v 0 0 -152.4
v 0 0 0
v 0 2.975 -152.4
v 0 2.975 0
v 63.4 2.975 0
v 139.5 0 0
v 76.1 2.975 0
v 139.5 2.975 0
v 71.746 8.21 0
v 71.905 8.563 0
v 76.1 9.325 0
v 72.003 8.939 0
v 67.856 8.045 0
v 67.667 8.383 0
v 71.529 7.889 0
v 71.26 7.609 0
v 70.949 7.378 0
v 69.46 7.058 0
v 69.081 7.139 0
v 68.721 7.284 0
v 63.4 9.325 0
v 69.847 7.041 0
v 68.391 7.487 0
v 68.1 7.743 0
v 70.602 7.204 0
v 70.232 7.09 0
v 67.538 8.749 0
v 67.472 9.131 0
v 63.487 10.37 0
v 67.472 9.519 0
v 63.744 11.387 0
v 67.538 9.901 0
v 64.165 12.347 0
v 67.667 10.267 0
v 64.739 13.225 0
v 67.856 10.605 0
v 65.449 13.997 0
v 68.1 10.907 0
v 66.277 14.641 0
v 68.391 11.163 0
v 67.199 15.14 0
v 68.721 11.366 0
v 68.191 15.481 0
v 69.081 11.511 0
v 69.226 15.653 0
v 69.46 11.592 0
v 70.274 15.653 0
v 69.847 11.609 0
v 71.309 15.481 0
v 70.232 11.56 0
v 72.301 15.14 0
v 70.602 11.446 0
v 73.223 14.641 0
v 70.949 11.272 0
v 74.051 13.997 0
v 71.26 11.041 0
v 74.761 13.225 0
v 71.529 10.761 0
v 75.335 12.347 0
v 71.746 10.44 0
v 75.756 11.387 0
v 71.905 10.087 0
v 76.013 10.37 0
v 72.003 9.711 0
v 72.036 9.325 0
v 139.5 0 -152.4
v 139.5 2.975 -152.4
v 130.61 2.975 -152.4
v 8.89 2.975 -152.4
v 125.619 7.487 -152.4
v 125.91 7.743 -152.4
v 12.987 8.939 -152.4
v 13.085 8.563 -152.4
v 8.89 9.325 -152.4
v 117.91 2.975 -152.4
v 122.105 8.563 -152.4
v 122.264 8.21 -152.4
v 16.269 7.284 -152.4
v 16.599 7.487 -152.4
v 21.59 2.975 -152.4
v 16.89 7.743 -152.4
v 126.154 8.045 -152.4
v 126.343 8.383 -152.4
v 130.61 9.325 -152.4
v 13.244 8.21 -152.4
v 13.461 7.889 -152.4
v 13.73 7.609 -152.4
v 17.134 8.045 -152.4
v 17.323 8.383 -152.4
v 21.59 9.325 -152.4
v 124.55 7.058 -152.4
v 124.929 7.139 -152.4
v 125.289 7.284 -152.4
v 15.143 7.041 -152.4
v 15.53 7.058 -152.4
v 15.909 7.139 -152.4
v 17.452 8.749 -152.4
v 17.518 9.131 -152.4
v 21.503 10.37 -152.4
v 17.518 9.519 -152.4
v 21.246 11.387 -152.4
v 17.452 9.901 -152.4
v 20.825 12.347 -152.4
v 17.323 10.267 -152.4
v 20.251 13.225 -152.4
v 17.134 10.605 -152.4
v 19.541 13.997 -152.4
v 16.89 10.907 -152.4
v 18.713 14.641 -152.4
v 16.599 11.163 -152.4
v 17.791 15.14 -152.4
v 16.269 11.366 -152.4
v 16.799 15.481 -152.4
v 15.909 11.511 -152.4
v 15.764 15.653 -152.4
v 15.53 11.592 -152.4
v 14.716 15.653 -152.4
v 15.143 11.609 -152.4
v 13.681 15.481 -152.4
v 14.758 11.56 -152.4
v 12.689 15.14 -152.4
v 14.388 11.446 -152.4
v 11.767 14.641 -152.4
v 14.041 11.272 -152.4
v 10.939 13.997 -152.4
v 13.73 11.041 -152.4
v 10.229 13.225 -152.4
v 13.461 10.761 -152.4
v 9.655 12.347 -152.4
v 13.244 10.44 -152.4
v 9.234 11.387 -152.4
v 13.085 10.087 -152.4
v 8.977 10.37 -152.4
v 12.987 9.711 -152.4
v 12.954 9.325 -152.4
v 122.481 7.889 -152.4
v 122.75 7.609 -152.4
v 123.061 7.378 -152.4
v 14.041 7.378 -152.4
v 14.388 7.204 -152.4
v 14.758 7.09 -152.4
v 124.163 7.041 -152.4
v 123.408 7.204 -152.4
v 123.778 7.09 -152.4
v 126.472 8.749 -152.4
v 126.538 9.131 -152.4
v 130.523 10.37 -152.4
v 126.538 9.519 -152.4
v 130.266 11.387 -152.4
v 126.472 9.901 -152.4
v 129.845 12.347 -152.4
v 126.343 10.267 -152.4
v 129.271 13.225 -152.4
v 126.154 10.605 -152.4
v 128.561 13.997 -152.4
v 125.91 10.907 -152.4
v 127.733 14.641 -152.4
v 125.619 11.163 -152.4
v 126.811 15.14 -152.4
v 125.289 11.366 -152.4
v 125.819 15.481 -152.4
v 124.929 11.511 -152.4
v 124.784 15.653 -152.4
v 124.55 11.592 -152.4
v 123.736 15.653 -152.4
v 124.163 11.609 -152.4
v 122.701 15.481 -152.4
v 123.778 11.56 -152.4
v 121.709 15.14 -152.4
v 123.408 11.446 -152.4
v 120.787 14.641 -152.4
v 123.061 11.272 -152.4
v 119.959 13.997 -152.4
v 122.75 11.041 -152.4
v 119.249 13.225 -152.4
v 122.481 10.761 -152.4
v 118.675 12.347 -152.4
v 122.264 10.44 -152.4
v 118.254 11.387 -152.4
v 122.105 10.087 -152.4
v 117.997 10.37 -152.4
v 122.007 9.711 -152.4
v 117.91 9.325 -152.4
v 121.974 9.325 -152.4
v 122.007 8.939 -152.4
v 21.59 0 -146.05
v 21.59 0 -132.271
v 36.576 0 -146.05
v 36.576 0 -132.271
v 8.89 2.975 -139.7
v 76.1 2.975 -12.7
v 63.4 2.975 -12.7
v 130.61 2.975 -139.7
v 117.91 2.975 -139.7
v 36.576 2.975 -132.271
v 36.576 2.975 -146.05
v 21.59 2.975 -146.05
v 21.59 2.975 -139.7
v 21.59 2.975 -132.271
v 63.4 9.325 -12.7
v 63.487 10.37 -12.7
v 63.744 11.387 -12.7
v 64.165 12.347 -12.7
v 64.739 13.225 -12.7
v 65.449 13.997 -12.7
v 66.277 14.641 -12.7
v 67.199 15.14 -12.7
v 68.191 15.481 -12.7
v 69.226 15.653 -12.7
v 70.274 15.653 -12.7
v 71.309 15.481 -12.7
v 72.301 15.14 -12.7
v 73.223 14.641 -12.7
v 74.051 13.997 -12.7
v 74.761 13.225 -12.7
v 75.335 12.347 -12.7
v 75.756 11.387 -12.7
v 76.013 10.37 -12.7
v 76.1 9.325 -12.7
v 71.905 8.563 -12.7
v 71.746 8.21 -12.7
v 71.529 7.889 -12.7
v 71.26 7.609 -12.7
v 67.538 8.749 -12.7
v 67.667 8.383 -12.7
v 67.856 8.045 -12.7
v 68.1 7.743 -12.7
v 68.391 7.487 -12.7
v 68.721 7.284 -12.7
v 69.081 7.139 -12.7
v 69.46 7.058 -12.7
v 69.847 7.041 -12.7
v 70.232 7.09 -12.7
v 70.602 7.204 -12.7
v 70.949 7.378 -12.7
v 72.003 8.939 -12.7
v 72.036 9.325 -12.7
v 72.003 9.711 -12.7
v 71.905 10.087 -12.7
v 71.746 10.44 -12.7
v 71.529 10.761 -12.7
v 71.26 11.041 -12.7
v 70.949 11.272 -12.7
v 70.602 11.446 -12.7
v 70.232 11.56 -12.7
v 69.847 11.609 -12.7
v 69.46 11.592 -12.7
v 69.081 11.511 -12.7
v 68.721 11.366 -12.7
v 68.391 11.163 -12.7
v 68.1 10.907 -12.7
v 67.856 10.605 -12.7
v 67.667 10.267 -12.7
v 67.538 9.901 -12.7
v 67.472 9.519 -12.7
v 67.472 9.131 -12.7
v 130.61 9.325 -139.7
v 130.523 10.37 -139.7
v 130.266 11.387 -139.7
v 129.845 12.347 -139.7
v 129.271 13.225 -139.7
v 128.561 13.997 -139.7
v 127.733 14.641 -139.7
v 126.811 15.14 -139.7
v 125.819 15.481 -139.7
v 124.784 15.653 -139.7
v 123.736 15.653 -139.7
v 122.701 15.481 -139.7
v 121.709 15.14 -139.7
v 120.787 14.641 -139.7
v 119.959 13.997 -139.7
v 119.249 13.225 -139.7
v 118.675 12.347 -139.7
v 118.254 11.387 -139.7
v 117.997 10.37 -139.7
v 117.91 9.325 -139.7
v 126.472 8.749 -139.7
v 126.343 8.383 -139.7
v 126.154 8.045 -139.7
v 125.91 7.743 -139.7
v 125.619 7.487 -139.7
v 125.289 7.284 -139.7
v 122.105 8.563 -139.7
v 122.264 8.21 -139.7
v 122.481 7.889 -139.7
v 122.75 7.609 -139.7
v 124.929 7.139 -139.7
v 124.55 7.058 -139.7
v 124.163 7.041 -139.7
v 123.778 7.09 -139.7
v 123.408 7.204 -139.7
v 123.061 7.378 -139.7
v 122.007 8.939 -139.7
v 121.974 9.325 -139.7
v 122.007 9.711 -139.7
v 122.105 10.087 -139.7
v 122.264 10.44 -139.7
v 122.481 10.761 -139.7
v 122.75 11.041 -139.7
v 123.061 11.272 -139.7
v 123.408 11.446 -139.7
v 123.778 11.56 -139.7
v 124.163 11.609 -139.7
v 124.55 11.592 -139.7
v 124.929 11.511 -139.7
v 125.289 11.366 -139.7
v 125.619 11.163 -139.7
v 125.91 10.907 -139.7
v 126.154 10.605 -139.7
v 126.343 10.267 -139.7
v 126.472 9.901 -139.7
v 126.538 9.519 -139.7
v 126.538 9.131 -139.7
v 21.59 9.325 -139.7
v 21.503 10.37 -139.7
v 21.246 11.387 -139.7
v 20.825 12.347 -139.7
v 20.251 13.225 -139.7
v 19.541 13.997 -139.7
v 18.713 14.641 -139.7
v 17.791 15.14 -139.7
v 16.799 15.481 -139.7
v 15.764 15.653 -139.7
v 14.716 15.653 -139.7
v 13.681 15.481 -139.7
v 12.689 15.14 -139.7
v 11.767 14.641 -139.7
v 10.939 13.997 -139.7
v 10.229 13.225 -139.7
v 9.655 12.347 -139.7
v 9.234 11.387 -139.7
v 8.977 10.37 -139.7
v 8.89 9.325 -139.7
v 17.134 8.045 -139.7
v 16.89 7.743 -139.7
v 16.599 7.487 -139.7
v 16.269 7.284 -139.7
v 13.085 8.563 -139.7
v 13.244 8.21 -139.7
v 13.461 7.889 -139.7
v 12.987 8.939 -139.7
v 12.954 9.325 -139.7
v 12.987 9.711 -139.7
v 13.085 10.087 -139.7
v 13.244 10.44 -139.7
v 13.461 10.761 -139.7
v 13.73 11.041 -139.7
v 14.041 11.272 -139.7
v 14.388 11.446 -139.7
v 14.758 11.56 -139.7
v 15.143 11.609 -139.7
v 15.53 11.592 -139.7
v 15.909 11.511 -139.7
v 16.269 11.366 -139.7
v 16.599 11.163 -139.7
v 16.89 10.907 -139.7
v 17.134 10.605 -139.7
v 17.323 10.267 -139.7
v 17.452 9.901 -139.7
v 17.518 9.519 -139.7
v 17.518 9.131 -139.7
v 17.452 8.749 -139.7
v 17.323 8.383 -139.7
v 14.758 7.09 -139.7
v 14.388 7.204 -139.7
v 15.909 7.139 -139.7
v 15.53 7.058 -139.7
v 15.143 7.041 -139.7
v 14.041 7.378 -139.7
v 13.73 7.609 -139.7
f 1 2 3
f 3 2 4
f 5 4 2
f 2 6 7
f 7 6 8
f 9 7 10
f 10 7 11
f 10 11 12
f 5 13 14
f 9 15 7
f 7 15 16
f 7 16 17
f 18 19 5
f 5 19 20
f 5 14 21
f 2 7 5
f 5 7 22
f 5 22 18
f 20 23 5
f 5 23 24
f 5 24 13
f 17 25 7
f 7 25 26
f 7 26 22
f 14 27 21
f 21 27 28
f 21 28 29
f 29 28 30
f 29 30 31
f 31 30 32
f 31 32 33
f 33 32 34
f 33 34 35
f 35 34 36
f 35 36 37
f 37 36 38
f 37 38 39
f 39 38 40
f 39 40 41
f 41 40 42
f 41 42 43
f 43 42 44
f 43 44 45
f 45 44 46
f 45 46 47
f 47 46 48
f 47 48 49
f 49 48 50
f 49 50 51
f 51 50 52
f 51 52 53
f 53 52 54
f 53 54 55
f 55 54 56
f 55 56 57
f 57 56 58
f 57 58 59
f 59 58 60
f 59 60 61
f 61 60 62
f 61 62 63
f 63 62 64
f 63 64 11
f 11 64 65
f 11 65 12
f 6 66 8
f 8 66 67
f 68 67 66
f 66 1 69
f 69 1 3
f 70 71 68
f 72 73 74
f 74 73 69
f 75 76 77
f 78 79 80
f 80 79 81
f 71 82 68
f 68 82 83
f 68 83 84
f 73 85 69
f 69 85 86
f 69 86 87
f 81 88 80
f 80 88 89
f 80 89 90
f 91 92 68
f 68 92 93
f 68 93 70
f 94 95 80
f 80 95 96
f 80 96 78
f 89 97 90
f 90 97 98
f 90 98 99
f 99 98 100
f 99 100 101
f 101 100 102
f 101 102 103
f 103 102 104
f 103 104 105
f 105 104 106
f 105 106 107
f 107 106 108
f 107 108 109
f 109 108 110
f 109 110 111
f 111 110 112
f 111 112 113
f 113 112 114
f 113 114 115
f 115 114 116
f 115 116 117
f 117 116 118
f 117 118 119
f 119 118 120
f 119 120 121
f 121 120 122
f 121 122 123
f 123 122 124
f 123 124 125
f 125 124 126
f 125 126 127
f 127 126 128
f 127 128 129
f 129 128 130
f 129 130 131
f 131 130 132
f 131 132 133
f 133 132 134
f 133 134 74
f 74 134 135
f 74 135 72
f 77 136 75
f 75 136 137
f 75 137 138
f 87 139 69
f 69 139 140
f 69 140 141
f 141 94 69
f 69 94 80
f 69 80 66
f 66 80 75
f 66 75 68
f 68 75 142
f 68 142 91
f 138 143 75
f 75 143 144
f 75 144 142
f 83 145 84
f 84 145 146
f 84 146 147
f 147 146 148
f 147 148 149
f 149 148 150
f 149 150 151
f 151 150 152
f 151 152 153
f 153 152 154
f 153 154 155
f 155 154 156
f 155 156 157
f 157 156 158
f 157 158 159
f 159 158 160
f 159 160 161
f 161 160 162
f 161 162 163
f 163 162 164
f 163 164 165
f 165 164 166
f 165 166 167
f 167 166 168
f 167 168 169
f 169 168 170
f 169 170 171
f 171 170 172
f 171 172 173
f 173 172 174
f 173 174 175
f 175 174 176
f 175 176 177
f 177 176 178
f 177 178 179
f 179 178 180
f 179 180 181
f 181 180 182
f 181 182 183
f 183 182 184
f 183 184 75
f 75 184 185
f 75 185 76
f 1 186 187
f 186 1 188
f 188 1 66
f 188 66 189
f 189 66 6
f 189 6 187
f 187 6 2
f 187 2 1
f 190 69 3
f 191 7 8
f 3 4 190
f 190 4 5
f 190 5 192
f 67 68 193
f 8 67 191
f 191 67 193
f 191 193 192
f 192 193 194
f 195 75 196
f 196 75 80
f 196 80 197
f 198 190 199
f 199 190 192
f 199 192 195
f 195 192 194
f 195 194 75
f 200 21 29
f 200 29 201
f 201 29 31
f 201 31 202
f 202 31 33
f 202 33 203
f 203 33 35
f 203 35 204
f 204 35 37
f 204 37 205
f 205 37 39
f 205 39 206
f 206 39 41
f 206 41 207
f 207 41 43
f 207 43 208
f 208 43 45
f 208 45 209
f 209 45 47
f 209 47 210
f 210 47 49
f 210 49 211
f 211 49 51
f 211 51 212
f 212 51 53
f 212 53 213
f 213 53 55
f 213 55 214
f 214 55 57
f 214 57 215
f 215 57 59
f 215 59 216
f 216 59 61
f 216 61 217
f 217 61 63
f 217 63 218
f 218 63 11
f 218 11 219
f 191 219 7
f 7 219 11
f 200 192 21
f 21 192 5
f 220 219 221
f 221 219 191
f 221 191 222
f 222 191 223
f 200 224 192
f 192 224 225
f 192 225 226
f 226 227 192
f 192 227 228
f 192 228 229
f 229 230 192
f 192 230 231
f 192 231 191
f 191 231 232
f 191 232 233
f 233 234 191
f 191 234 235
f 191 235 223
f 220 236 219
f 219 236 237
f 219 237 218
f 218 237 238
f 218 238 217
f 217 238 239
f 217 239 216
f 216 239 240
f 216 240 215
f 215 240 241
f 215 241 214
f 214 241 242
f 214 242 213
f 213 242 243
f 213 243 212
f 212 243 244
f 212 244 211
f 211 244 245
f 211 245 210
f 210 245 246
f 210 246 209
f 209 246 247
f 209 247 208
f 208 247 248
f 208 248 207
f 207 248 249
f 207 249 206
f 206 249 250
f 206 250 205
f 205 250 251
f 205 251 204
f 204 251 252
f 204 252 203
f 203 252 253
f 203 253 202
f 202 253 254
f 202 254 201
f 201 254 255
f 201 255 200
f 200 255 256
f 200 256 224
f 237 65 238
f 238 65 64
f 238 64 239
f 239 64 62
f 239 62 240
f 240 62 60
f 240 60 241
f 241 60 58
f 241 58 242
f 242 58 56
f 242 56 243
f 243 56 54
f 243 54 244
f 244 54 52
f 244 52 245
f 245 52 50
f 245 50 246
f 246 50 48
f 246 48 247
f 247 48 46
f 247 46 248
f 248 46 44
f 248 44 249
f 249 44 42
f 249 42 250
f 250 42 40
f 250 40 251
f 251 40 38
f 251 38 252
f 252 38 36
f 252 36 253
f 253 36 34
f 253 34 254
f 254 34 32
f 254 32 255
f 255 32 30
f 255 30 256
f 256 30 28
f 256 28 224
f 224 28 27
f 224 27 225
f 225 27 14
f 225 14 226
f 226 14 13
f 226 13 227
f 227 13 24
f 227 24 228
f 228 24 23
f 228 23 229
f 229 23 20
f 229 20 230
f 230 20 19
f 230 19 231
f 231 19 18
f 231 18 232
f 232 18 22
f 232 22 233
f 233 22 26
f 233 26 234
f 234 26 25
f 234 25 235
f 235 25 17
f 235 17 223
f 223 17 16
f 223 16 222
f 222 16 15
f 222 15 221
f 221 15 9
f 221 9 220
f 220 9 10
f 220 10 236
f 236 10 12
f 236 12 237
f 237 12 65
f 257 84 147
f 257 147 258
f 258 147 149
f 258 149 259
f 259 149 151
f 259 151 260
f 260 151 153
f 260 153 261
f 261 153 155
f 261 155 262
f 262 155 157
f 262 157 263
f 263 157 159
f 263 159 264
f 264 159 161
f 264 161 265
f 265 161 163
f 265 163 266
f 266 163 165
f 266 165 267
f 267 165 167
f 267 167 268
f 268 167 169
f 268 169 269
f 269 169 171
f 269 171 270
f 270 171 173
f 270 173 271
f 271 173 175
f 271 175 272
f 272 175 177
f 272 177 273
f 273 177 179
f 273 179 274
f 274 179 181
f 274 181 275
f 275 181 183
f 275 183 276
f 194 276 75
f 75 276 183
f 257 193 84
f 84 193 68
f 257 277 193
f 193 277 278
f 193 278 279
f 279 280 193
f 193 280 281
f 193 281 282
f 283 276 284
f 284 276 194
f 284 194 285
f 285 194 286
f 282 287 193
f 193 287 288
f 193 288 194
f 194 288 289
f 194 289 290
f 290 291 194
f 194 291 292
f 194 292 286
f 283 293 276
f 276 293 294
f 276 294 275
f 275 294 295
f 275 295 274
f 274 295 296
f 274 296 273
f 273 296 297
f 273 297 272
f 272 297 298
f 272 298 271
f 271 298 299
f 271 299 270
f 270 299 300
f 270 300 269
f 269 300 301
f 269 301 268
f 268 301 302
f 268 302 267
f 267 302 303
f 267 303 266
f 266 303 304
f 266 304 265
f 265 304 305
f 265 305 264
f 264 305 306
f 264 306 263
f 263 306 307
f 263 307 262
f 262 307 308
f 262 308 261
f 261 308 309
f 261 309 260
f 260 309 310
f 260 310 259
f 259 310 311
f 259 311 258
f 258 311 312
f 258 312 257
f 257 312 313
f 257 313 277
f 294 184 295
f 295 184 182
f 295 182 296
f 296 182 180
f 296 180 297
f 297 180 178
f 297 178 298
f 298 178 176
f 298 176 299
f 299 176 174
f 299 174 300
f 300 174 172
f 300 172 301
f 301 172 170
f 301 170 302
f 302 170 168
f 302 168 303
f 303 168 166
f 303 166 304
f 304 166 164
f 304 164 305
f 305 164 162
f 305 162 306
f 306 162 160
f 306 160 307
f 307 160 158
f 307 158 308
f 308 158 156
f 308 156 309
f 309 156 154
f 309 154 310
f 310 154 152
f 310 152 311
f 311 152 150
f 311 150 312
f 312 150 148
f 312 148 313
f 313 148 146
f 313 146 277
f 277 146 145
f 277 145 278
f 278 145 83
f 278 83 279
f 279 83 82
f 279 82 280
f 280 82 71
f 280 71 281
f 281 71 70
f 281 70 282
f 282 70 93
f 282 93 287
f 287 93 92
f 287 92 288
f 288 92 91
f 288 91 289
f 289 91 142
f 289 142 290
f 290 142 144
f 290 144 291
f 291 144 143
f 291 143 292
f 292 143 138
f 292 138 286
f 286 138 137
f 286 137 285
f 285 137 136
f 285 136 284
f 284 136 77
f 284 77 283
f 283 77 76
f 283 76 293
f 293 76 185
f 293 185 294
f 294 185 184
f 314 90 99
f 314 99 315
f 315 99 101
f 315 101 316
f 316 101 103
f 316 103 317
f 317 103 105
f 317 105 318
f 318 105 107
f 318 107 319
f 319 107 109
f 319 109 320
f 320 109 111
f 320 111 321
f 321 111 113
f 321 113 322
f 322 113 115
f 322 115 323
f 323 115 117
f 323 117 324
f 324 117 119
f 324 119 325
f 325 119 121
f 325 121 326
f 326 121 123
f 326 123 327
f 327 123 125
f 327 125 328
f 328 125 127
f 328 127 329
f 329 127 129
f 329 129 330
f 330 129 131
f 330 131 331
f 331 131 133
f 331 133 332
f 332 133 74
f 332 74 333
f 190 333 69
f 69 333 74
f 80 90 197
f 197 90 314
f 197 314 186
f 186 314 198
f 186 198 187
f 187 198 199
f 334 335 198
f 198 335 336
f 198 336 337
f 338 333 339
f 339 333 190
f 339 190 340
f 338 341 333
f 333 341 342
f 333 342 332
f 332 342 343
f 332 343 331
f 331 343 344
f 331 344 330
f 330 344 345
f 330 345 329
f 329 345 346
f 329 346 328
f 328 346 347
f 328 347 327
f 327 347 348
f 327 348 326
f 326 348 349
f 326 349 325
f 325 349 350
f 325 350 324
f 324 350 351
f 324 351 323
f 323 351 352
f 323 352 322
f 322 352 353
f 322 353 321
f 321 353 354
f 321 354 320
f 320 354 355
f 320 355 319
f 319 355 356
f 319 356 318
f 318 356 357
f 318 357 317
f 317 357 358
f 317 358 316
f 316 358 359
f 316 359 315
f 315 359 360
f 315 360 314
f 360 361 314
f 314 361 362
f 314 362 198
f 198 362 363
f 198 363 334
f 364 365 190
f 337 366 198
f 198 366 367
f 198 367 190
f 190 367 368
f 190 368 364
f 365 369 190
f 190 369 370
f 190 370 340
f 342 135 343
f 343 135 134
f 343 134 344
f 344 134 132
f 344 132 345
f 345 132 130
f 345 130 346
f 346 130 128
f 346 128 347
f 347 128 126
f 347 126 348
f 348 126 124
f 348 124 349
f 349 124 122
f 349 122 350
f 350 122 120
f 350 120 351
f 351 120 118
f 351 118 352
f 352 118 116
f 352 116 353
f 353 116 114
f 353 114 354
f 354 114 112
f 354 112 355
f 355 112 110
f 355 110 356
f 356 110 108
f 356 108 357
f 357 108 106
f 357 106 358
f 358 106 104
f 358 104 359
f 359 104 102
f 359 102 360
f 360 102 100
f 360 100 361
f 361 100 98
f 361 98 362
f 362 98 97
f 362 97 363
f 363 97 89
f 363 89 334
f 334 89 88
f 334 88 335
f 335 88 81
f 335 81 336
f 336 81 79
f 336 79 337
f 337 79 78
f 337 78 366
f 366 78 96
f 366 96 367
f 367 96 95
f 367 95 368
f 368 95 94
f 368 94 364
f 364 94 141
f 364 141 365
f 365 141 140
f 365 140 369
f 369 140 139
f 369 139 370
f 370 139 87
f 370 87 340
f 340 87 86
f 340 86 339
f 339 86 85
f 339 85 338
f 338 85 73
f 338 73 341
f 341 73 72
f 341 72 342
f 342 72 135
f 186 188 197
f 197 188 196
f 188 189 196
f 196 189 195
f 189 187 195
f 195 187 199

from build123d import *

# Parameters (mm, degrees)
SKETCH1_W           = 139.5
SKETCH1_H           = 152.4
BOSS_EXTRUDE1_DEPTH = 6.35
SKETCH2_W           = 139.5
SKETCH2_H           = 152.4
CUT_EXTRUDE1_DEPTH  = 3.375
SKETCH3_R           = 2.286
BOSS_EXTRUDE2_DEPTH = 12.7
SKETCH4_R           = 2.286
BOSS_EXTRUDE3_DEPTH = 12.7
SKETCH5_W           = 14.986
SKETCH5_H           = 13.7795
CUT_EXTRUDE2_DEPTH  = 3.975


with BuildPart() as part:
    # Sketch1 → Boss-Extrude1 (new body)
    with BuildSketch(Plane(origin=(0, 0, 0), x_dir=(1, 0, 0), z_dir=(0, 1, 0))):
        with Locations((69.75, 76.2)):
            Rectangle(SKETCH1_W, SKETCH1_H)
    extrude(amount=BOSS_EXTRUDE1_DEPTH)

    # Sketch2 → Cut-Extrude1 (cut)
    with BuildSketch(Plane(origin=(0, 6.35, 0), x_dir=(1, 0, 0), z_dir=(0, 1, 0))):
        with Locations((69.75, 76.2)):
            Rectangle(SKETCH2_W, SKETCH2_H)
    extrude(amount=-CUT_EXTRUDE1_DEPTH, mode=Mode.SUBTRACT)

    # Sketch3 → Boss-Extrude2 (add)
    with BuildSketch(Plane.XY):
        with BuildLine():
            Line((63.4, 9.325), (63.4, 2.975))
            Line((63.4, 2.975), (76.1, 2.975))
            Line((76.1, 2.975), (76.1, 9.325000158))
            ThreePointArc((76.1, 9.325000158), (69.749999921, 15.675000158), (63.4, 9.325))
        make_face()
        with Locations((69.75, 9.325000158)):
            Circle(SKETCH3_R, mode=Mode.SUBTRACT)
    extrude(amount=-BOSS_EXTRUDE2_DEPTH)

    # Sketch4 → Boss-Extrude3 (add)
    with BuildSketch(Plane(origin=(0, 0, -152.4), x_dir=(-1, 0, 0), z_dir=(0, 0, -1))):
        with BuildLine():
            Line((-130.61, 9.325), (-130.61, 2.975))
            Line((-130.61, 2.975), (-117.91, 2.975))
            Line((-117.91, 2.975), (-117.91, 9.325))
            ThreePointArc((-117.91, 9.325), (-124.26, 15.675), (-130.61, 9.325))
        make_face()
        with Locations((-124.26, 9.325)):
            Circle(SKETCH4_R, mode=Mode.SUBTRACT)
        with BuildLine():
            Line((-21.59, 9.325), (-21.59, 2.975))
            Line((-21.59, 2.975), (-8.89, 2.975))
            Line((-8.89, 2.975), (-8.89, 9.325))
            ThreePointArc((-8.89, 9.325), (-15.24, 15.675), (-21.59, 9.325))
        make_face()
        with Locations((-15.24, 9.325)):
            Circle(SKETCH4_R, mode=Mode.SUBTRACT)
    extrude(amount=-BOSS_EXTRUDE3_DEPTH)

    # Sketch5 → Cut-Extrude2 (cut, through all)
    with BuildSketch(Plane(origin=(0, 2.975, 0), x_dir=(1, 0, 0), z_dir=(0, 1, 0))):
        with Locations((29.083, 139.16025)):
            Rectangle(SKETCH5_W, SKETCH5_H)
    extrude(amount=-CUT_EXTRUDE2_DEPTH, mode=Mode.SUBTRACT)


solid = part.part
